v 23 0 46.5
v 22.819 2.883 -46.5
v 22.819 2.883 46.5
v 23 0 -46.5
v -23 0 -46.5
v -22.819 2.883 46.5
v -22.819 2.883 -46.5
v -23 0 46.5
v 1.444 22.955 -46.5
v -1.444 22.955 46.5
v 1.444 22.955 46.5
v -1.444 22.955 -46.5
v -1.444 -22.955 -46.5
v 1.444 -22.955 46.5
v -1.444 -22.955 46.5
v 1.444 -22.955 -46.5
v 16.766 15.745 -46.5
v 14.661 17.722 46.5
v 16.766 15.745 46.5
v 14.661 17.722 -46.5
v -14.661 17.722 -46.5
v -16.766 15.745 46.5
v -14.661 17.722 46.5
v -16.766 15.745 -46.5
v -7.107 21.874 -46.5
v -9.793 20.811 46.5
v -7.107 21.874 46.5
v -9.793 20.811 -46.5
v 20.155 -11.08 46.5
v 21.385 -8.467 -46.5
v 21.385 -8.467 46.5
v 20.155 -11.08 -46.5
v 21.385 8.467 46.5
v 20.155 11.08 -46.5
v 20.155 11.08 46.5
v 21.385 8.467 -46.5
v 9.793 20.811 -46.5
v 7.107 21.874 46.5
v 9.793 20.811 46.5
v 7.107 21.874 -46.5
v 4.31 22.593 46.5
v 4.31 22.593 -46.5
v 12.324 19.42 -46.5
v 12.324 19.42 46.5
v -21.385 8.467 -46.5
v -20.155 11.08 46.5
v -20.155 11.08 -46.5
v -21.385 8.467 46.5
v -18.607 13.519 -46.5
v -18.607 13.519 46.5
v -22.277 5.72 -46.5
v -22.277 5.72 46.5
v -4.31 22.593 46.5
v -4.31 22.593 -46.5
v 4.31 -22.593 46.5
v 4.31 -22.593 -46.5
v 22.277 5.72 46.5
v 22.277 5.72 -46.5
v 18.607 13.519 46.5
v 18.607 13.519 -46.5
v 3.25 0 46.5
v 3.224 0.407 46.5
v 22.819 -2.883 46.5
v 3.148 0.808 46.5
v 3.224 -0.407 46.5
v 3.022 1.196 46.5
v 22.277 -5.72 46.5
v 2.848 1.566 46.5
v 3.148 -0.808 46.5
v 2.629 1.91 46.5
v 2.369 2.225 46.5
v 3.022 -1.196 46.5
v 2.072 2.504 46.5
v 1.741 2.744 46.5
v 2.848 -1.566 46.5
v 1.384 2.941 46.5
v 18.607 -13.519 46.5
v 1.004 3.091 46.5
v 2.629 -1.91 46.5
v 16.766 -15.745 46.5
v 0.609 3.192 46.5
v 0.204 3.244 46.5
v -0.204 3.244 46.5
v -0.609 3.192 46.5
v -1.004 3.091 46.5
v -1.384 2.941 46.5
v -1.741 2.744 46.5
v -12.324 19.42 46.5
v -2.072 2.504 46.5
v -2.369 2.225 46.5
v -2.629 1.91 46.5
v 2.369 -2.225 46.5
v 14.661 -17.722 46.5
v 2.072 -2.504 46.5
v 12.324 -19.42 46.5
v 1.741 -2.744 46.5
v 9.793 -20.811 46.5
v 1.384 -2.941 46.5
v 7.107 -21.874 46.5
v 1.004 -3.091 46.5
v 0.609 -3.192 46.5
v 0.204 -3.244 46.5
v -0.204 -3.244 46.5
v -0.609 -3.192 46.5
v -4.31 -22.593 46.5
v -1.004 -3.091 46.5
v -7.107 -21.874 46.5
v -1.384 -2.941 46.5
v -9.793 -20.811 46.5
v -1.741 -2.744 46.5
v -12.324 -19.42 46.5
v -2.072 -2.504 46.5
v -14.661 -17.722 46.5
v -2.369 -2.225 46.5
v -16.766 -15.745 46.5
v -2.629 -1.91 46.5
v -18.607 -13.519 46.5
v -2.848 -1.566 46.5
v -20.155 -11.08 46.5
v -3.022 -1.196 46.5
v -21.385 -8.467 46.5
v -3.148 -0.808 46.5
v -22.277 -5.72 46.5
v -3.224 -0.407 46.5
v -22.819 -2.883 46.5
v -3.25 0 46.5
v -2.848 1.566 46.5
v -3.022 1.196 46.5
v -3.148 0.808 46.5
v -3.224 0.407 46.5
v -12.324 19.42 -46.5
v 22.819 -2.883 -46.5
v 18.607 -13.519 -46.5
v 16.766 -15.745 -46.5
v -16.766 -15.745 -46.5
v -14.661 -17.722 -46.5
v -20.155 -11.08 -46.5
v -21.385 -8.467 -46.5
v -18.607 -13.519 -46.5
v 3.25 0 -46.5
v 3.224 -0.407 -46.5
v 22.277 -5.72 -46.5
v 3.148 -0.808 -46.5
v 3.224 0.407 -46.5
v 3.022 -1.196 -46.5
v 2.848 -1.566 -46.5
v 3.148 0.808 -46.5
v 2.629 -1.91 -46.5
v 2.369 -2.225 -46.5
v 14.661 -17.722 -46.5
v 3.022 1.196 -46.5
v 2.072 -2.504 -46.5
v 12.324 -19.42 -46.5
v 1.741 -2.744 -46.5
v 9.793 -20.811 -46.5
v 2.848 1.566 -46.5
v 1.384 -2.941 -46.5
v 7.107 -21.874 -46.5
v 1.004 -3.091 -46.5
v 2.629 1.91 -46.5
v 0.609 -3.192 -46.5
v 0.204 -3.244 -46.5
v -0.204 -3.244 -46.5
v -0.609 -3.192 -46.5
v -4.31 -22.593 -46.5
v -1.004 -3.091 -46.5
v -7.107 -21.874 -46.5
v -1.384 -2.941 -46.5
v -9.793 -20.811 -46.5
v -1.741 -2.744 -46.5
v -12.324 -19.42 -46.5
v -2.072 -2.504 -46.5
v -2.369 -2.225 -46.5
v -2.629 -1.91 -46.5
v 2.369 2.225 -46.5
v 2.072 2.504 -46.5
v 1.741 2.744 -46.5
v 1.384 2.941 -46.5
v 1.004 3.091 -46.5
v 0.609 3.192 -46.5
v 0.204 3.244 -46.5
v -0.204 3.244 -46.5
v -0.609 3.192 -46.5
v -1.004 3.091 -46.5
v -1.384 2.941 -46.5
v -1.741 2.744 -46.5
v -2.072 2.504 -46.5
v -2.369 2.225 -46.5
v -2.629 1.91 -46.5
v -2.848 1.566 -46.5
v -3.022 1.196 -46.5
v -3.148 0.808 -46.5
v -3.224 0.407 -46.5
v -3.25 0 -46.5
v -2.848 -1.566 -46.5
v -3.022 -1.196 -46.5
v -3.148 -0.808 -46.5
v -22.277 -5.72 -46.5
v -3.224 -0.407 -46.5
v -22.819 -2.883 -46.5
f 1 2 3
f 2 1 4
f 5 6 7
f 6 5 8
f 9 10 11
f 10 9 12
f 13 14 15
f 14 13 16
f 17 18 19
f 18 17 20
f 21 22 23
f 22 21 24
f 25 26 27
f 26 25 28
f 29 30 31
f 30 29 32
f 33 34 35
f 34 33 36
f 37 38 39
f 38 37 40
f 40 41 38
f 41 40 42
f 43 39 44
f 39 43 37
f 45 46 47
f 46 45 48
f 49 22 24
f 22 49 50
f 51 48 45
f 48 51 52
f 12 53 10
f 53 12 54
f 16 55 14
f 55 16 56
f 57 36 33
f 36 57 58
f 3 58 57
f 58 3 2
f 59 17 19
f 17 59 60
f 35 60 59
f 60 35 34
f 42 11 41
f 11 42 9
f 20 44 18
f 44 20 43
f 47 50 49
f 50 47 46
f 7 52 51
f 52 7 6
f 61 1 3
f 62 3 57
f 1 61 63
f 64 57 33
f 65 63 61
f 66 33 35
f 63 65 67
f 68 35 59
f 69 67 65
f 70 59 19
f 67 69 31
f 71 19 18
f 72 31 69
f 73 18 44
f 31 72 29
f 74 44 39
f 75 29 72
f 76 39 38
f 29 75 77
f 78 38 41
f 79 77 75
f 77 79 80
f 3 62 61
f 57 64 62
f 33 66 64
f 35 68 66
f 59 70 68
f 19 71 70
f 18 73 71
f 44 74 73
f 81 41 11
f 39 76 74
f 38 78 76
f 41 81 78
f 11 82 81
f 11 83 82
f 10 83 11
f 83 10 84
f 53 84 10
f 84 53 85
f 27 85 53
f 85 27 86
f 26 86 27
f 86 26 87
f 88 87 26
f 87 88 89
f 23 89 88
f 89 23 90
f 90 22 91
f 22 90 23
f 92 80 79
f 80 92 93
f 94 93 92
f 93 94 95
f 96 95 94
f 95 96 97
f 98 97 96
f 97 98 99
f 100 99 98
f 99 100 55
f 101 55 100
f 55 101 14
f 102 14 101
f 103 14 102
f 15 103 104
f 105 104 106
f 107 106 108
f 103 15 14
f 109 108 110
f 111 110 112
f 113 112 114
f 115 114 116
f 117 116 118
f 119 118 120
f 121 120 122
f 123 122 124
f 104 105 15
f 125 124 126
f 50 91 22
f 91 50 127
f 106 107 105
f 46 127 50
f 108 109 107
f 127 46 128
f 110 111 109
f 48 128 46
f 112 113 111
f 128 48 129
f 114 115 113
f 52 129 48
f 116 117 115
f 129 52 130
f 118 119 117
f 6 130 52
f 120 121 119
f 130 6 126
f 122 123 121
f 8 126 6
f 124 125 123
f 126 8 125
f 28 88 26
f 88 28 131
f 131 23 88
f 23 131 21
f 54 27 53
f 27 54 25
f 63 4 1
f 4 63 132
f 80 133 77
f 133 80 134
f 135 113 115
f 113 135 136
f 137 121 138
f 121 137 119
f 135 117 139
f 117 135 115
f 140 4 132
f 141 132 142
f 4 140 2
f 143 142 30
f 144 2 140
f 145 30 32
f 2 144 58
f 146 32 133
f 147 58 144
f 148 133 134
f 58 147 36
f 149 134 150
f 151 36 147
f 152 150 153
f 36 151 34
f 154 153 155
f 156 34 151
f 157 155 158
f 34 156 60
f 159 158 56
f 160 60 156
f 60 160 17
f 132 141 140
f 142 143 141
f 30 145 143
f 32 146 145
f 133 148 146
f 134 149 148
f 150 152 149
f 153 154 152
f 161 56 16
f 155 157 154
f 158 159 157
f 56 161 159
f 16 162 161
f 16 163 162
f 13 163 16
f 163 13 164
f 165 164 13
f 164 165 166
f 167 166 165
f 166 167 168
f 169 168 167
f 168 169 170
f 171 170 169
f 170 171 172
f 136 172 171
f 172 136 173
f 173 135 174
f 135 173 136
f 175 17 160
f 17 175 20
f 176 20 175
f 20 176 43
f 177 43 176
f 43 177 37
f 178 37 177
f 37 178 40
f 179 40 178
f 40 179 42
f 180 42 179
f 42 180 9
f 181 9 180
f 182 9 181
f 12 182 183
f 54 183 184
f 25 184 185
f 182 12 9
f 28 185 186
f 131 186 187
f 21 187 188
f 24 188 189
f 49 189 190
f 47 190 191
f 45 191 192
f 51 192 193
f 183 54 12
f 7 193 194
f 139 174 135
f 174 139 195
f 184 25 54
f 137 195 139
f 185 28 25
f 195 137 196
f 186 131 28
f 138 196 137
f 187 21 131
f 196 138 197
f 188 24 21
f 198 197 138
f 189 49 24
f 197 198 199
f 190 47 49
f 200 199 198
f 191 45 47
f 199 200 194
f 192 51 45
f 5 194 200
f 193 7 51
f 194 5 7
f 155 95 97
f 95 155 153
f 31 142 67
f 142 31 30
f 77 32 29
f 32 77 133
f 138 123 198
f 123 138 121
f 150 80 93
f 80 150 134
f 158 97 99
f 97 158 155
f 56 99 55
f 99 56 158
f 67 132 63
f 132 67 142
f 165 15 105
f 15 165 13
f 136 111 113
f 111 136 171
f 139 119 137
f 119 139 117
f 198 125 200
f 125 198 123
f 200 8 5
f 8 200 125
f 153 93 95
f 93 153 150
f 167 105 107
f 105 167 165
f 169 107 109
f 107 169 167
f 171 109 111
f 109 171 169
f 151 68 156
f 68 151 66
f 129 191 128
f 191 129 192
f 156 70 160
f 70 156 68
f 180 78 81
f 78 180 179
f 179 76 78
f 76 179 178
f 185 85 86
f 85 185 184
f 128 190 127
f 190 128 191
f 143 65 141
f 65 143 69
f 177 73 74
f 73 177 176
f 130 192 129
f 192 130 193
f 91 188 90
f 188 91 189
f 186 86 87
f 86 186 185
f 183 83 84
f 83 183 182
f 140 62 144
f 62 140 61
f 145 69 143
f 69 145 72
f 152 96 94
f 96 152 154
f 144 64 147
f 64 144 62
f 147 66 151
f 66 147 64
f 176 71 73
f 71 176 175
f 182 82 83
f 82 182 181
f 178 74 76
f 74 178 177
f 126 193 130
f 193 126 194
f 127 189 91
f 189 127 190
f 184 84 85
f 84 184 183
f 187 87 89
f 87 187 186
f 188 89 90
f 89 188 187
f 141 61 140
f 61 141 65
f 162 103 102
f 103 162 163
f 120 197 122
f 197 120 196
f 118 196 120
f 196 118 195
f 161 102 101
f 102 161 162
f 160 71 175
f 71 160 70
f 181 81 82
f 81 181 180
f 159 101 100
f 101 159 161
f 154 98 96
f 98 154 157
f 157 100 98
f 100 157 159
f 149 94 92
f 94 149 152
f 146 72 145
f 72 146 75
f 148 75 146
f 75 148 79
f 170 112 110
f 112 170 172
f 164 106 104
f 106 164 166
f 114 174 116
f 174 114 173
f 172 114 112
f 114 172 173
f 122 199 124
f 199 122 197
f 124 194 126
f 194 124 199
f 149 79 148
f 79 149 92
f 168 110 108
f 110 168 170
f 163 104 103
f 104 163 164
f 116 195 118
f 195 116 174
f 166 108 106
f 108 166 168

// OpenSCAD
$fn = 50;


difference() {
	union() {
		translate(v = [0, 0, -46.5000000000]) {
			cylinder(h = 93, r = 23.0000000000);
		}
	}
	union() {
		translate(v = [0, 0, -100.0000000000]) {
			cylinder(h = 200, r = 3.2500000000);
		}
	}
}
